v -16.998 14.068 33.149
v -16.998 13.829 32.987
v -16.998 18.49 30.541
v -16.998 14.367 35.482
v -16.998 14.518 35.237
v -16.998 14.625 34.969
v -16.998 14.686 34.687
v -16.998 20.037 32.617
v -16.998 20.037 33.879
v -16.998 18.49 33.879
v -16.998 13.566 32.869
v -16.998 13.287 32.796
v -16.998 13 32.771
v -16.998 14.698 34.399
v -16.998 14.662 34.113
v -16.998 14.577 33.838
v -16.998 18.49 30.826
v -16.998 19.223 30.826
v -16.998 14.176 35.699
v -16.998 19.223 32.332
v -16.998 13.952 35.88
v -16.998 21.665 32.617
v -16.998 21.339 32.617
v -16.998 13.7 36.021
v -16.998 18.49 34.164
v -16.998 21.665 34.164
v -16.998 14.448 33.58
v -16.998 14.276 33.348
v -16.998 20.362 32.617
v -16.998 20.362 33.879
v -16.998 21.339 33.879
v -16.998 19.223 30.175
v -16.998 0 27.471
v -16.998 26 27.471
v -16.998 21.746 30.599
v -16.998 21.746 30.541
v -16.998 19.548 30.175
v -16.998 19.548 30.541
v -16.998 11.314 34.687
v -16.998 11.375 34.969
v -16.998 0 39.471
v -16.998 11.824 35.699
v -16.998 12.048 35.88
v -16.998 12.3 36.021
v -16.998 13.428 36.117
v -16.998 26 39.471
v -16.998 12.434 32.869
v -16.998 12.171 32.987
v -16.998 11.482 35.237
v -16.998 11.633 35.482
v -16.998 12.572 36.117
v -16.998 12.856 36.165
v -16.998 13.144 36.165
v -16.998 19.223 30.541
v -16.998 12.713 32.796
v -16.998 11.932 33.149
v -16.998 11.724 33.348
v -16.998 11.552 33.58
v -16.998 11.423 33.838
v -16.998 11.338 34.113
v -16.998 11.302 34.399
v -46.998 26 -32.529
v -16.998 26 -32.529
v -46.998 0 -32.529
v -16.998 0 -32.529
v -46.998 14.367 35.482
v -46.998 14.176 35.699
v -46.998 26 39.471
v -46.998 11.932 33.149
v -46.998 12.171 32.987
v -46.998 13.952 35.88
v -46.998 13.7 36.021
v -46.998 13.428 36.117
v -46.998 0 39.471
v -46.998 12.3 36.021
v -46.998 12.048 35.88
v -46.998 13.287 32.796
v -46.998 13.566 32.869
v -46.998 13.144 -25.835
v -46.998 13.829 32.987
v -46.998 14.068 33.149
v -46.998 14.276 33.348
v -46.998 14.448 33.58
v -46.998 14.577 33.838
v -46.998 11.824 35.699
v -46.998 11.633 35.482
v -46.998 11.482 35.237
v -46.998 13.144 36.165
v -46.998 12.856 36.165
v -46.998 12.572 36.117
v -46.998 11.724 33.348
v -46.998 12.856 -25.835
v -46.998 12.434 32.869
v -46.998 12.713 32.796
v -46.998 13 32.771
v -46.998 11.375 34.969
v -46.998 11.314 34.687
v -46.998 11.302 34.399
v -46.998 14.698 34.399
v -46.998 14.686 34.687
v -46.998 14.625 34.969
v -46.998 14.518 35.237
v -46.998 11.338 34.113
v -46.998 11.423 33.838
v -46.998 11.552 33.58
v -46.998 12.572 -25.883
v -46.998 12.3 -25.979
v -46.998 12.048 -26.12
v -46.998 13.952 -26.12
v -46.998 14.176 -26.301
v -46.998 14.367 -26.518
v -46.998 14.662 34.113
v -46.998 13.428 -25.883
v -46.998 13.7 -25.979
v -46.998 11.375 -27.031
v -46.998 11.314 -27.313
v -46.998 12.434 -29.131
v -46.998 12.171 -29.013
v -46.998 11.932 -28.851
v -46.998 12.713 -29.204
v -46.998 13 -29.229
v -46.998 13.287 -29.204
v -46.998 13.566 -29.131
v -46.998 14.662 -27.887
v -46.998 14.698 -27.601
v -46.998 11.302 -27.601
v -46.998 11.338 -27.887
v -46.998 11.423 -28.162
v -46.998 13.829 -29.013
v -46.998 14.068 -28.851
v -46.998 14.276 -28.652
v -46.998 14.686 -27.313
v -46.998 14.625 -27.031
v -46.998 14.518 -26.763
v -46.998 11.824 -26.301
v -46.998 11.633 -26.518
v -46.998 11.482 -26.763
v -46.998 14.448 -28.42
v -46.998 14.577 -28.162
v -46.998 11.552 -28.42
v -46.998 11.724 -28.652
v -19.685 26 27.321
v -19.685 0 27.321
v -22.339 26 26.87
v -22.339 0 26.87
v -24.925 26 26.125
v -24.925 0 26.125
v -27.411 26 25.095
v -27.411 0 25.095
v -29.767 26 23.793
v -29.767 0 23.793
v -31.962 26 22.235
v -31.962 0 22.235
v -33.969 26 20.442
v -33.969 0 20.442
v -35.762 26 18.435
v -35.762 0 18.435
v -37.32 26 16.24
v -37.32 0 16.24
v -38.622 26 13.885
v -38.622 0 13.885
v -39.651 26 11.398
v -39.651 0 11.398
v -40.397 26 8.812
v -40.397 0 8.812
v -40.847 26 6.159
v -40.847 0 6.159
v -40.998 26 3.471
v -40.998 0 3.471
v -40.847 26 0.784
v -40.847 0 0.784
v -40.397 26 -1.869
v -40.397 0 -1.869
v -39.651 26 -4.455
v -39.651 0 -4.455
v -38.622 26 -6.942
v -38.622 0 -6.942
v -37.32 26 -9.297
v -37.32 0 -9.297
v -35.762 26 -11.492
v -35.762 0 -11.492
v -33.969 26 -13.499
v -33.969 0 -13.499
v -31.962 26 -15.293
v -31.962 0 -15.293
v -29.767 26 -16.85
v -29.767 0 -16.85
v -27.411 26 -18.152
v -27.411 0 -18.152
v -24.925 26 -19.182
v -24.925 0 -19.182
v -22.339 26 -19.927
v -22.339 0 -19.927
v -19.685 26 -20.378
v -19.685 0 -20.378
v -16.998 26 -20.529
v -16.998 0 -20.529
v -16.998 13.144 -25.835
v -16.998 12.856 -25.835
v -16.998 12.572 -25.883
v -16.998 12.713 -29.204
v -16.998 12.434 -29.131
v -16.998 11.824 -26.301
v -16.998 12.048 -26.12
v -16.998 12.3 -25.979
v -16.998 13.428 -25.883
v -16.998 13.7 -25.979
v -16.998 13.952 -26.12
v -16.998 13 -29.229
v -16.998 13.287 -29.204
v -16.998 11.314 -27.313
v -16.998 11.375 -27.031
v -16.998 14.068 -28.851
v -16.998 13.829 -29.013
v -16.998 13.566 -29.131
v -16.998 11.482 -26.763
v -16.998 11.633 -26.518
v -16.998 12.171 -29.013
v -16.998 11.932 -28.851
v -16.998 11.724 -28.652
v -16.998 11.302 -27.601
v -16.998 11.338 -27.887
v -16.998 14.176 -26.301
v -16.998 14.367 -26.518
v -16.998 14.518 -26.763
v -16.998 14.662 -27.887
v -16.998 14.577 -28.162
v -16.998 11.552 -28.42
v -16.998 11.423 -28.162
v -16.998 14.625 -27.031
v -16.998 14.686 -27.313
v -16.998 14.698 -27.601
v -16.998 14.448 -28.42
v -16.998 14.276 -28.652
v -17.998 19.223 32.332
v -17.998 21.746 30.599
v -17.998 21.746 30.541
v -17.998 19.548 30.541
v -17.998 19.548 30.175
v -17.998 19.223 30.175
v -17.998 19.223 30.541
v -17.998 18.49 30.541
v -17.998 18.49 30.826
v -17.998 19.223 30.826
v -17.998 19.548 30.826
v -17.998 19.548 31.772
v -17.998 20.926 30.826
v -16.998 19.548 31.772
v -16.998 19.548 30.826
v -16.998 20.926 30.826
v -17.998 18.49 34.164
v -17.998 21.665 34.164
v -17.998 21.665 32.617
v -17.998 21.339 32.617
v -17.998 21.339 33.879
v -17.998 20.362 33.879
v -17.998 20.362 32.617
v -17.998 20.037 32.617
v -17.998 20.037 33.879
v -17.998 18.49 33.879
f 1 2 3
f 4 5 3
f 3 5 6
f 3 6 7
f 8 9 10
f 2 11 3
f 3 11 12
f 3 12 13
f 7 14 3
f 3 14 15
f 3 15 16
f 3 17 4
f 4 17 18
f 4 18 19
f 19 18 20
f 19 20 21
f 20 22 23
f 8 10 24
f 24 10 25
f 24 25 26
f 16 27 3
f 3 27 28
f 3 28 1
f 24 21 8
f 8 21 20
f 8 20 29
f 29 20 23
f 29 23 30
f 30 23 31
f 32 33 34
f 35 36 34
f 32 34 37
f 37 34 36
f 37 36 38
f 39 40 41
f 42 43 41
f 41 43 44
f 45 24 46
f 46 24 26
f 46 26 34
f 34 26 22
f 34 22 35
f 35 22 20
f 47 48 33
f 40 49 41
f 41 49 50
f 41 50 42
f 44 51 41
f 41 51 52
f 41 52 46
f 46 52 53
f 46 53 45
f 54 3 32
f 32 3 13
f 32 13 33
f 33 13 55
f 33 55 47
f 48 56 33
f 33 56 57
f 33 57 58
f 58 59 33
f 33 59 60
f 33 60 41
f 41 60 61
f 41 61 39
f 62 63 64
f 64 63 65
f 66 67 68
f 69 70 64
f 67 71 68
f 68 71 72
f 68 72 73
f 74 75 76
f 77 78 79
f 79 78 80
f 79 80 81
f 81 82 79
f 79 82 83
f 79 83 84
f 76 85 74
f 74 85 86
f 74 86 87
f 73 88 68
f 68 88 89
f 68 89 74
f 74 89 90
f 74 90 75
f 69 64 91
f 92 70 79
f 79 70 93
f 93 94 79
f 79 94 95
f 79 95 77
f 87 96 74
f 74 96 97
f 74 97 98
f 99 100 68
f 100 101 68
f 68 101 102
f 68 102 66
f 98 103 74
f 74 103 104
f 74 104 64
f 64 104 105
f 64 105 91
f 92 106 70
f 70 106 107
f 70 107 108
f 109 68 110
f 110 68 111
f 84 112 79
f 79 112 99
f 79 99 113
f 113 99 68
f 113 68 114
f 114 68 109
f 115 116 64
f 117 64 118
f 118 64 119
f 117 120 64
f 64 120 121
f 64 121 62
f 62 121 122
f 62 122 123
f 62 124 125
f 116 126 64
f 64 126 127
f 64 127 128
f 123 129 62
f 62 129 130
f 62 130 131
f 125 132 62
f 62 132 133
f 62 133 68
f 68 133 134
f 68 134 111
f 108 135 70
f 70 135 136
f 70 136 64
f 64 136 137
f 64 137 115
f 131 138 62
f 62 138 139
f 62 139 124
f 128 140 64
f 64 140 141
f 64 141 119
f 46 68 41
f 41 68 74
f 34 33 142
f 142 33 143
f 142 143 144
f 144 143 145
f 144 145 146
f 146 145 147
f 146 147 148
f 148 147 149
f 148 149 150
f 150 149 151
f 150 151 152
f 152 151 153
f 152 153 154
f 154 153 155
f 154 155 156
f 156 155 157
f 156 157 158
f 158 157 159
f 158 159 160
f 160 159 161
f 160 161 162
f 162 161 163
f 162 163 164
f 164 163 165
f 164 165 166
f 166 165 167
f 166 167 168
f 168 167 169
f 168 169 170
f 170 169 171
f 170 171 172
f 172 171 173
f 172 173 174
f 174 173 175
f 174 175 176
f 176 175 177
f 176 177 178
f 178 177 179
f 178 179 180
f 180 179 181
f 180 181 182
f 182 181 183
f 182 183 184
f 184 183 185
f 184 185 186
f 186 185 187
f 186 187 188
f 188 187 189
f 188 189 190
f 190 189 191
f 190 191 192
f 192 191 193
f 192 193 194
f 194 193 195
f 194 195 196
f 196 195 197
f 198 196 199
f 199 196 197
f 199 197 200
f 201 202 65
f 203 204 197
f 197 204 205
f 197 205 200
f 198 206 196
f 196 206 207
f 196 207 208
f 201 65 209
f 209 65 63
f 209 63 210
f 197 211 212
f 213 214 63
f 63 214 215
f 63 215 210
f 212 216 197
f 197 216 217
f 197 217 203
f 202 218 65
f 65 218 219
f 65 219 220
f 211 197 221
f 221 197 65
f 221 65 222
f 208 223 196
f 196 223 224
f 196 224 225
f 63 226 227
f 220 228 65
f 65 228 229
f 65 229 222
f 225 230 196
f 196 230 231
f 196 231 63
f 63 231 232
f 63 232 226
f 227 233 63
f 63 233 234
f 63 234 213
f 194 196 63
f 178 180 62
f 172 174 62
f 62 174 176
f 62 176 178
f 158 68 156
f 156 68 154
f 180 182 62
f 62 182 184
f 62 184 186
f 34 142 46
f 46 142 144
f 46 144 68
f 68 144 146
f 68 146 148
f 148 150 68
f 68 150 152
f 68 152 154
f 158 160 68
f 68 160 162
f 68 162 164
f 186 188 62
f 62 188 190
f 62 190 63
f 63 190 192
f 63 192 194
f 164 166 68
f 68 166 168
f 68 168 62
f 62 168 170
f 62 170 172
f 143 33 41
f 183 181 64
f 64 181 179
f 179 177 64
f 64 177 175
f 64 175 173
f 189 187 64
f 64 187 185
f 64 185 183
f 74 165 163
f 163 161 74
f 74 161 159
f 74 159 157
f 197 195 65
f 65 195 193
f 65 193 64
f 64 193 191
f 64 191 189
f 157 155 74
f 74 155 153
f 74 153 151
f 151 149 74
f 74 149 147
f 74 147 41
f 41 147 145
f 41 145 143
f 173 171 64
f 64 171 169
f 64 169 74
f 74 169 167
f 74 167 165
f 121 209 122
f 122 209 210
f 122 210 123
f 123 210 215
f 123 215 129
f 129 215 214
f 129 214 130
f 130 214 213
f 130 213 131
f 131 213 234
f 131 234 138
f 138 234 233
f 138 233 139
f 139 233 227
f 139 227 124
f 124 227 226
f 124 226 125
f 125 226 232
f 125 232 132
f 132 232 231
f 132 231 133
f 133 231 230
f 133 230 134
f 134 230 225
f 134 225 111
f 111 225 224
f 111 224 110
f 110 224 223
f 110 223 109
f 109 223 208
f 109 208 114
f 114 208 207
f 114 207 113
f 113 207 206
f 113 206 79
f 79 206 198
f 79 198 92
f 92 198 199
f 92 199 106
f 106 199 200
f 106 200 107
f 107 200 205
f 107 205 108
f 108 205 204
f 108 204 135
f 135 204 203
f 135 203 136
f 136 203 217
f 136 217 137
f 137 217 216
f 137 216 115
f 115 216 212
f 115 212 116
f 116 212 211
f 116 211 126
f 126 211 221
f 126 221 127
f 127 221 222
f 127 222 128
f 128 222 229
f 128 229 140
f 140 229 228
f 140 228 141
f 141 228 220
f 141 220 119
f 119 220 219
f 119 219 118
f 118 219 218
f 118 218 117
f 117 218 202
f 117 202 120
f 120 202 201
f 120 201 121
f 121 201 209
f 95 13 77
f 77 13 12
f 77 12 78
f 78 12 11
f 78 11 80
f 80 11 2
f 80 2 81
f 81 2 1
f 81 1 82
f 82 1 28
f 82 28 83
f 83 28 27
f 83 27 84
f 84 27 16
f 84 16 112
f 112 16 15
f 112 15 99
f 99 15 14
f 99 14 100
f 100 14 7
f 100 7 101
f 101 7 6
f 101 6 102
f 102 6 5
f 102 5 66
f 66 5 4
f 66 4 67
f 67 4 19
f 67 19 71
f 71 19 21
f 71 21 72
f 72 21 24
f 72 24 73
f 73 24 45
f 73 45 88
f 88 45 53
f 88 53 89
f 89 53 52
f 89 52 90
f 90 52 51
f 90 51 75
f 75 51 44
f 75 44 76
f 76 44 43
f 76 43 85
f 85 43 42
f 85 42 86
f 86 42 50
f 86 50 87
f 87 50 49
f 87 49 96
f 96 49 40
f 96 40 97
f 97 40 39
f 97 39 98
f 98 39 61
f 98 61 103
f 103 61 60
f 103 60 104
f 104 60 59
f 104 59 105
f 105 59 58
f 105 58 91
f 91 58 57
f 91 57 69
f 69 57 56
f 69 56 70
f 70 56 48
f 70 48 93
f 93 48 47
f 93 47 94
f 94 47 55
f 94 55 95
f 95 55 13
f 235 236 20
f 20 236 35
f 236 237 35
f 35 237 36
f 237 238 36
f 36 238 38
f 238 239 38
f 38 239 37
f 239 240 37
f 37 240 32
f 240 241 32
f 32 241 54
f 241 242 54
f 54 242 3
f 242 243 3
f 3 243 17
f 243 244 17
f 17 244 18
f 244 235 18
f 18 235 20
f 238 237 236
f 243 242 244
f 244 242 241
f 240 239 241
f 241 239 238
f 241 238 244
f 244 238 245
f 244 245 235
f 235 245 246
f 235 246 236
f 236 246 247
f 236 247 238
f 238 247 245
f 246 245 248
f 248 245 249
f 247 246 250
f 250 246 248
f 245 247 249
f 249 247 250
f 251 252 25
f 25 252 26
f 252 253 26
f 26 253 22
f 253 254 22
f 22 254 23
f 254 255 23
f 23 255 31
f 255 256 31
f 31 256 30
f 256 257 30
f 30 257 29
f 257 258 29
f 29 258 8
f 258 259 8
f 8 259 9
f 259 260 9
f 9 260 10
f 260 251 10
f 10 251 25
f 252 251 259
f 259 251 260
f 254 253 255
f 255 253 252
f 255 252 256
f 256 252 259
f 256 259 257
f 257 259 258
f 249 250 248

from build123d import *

# Parameters (mm, degrees)
BOSS_EXTRUDE1_DEPTH = 26
SKETCH2_R           = 1.7
CUT_EXTRUDE1_DEPTH  = 31
CUT_EXTRUDE2_DEPTH  = 1


with BuildPart() as part:
    # Sketch1 → Boss-Extrude1 (new body)
    with BuildSketch(Plane(origin=(0, 0, 0), x_dir=(1, 0, 0), z_dir=(0, 1, 0))):
        with BuildLine():
            Line((-46.998275301, 32.528571429), (-46.998275301, -39.471428571))
            Line((-46.998275301, -39.471428571), (-16.998275301, -39.471428571))
            Line((-16.998275301, -39.471428571), (-16.998275301, -27.471428571))
            ThreePointArc((-16.998275301, -27.471428571), (-40.998275301, -3.471428571), (-16.998275301, 20.528571429))
            Line((-16.998275301, 20.528571429), (-16.998275301, 32.528571429))
            Line((-16.998275301, 32.528571429), (-46.998275301, 32.528571429))
        make_face()
    extrude(amount=BOSS_EXTRUDE1_DEPTH)

    # Sketch2 → Cut-Extrude1 (cut, through all)
    with BuildSketch(Plane(origin=(-16.998275301, 0, 0), x_dir=(0, 0, -1), z_dir=(1, 0, 0))):
        with Locations((-34.471428571, 13)):
            Circle(SKETCH2_R)
        with Locations((27.528571429, 13)):
            Circle(SKETCH2_R)
    extrude(amount=-CUT_EXTRUDE1_DEPTH, mode=Mode.SUBTRACT)

    # Sketch3 → Cut-Extrude2 (cut)
    with BuildSketch(Plane(origin=(-16.998275301, 0, 0), x_dir=(0, 0, -1), z_dir=(1, 0, 0))):
        Polygon((-34.164231178, 21.664809495), (-32.617436306, 21.664809495), (-32.617436306, 21.33916847), (-33.87929528, 21.33916847), (-33.87929528, 20.362245393), (-32.617436306, 20.362245393), (-32.617436306, 20.036604367), (-33.87929528, 20.036604367), (-33.87929528, 18.489809495), (-34.164231178, 18.489809495), align=None)
        Polygon((-30.599352372, 21.746219752), (-30.541474768, 21.746219752), (-30.541474768, 19.548142829), (-30.175128614, 19.548142829), (-30.175128614, 19.222501803), (-30.541474768, 19.222501803), (-30.541474768, 18.489809495), (-30.826410665, 18.489809495), (-30.826410665, 19.222501803), (-32.332500409, 19.222501803), align=None)
        Polygon((-30.826410665, 19.548142829), (-30.826410665, 20.925757011), (-31.772168878, 19.548142829), align=None, mode=Mode.SUBTRACT)
    extrude(amount=-CUT_EXTRUDE2_DEPTH, mode=Mode.SUBTRACT)


solid = part.part
